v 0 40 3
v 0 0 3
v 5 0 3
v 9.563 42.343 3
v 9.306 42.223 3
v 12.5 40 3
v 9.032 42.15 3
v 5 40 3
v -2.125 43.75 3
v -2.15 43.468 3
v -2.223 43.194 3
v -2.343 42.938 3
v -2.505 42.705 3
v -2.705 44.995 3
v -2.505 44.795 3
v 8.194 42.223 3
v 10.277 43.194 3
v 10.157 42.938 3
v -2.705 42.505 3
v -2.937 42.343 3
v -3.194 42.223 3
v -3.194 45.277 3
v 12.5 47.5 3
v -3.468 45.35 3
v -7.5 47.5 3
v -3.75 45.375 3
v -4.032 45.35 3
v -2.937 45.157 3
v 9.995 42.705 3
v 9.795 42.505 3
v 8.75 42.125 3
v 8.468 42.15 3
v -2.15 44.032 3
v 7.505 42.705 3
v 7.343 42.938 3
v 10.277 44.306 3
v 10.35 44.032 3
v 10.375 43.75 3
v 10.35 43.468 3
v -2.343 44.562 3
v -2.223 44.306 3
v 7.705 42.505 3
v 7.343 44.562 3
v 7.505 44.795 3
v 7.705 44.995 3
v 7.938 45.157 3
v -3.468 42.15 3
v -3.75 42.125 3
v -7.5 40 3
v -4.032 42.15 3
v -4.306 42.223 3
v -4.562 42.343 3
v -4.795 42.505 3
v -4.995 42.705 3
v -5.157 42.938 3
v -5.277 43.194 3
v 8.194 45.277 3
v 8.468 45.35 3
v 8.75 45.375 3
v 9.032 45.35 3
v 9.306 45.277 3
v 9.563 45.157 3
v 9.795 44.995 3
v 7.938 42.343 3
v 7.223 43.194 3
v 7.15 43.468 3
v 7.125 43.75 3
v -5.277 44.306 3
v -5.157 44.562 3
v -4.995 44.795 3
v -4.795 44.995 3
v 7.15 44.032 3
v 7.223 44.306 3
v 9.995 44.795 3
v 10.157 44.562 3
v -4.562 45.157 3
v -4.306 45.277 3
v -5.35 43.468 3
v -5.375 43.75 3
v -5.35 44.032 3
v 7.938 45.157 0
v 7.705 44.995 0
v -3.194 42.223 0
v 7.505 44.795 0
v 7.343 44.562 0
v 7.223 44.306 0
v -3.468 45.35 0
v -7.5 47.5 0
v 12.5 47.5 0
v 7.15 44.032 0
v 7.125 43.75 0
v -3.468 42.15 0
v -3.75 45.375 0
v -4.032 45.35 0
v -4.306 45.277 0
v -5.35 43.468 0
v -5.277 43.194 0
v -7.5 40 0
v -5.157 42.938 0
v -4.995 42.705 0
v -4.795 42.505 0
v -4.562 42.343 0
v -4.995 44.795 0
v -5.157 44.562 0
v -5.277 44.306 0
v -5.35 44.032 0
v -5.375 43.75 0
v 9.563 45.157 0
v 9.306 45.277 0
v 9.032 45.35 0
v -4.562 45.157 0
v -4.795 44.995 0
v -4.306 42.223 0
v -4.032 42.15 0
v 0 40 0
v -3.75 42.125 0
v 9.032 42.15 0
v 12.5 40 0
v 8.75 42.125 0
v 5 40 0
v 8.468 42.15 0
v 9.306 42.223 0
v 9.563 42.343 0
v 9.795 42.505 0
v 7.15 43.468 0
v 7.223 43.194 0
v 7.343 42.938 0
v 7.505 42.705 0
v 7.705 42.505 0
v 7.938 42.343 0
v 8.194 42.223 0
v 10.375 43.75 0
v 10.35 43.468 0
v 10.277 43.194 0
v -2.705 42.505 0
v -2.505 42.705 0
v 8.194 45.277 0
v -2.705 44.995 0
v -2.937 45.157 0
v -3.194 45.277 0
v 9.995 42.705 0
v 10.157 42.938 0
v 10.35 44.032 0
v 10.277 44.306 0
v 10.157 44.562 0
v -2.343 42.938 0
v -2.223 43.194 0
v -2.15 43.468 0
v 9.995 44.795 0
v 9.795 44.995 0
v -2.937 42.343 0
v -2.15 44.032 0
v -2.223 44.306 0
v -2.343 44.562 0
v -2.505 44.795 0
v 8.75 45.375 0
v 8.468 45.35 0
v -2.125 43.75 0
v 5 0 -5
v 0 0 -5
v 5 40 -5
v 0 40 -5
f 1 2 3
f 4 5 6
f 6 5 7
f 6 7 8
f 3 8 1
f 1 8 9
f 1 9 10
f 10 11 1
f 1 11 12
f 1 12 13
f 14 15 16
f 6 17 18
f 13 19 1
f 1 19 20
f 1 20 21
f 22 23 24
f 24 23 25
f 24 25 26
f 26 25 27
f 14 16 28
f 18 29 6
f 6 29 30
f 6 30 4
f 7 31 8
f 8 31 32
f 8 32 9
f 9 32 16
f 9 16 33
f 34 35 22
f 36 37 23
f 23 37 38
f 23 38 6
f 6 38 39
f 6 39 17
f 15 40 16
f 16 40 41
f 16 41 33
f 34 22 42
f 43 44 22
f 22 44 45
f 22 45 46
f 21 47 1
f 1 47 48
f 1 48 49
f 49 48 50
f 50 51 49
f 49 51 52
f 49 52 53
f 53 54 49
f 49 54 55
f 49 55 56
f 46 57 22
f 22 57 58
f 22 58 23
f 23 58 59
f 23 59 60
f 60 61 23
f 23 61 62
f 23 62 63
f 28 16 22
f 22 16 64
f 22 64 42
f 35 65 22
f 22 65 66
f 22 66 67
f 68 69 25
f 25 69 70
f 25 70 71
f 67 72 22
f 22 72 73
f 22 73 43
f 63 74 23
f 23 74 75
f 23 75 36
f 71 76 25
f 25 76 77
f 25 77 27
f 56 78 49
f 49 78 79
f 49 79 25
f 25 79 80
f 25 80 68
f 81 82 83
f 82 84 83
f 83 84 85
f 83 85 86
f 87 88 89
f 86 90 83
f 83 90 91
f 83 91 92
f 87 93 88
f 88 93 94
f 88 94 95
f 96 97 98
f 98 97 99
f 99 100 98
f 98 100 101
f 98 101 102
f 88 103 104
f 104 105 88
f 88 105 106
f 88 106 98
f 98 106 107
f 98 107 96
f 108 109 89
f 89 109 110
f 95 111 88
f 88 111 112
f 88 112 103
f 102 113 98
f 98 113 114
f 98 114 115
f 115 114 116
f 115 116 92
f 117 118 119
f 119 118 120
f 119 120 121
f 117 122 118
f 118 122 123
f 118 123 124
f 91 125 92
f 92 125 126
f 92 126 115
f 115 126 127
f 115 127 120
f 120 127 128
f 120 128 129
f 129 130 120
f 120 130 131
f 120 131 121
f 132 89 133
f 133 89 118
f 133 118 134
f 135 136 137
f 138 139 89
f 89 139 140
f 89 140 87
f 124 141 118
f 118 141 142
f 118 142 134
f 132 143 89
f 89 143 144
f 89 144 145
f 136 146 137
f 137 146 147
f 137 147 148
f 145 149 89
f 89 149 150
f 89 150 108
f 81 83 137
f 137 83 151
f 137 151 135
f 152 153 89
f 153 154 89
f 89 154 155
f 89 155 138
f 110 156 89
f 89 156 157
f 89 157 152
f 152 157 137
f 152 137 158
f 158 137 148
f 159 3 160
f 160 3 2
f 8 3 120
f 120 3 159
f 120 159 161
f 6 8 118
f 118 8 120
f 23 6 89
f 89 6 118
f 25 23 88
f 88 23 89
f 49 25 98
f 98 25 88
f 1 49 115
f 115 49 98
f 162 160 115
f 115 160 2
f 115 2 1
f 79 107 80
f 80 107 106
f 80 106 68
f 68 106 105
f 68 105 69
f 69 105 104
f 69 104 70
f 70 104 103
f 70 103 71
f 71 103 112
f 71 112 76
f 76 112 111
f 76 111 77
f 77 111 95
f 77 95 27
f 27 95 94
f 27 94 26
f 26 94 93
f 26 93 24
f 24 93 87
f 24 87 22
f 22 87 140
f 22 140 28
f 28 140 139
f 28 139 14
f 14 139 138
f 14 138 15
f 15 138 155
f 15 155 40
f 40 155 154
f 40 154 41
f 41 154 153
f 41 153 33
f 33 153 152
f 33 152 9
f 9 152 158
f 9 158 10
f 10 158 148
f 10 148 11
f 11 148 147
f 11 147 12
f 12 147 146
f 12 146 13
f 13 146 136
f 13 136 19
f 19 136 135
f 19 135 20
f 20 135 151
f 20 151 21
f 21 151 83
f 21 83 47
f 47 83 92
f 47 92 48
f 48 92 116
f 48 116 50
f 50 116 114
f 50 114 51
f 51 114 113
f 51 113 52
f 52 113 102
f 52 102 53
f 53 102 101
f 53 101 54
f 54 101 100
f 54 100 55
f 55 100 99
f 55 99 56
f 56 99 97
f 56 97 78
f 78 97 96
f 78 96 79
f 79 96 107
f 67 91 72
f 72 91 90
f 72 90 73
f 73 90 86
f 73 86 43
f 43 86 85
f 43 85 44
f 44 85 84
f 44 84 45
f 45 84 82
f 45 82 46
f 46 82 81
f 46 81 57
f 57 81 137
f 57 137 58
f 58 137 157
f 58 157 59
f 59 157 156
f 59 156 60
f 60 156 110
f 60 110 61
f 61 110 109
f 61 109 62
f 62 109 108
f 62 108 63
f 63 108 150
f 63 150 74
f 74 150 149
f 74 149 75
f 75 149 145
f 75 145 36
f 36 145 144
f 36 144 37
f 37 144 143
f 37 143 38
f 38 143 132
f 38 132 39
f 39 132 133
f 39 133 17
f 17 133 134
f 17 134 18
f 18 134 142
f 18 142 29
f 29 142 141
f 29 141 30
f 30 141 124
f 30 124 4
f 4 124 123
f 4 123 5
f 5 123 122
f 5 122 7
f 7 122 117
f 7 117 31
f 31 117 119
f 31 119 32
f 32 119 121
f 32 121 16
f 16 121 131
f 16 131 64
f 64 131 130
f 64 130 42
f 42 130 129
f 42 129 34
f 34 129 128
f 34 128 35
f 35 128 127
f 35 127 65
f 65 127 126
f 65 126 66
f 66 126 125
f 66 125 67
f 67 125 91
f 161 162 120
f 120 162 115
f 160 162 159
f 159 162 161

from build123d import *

# Parameters (mm, degrees)
SKETCH1_R           = 1.625
BOSS_EXTRUDE1_DEPTH = 3
SKETCH3_W           = 5
SKETCH3_H           = 40
BOSS_EXTRUDE3_DEPTH = 5


with BuildPart() as part:
    # Sketch1 → Boss-Extrude1 (new body)
    with BuildSketch(Plane.XY):
        Polygon((0, 0), (0, 40), (-7.5, 40), (-7.5, 47.5), (12.5, 47.5), (12.5, 40), (5, 40), (5, 0), align=None)
        with Locations((-3.75, 43.75)):
            Circle(SKETCH1_R, mode=Mode.SUBTRACT)
        with Locations((8.75, 43.75)):
            Circle(SKETCH1_R, mode=Mode.SUBTRACT)
    extrude(amount=BOSS_EXTRUDE1_DEPTH)

    # Sketch3 → Boss-Extrude3 (add)
    with BuildSketch(Plane(origin=(0, 0, 0), x_dir=(-1, 0, 0), z_dir=(0, 0, -1))):
        with Locations((-2.5, 20)):
            Rectangle(SKETCH3_W, SKETCH3_H)
    extrude(amount=BOSS_EXTRUDE3_DEPTH)


solid = part.part
